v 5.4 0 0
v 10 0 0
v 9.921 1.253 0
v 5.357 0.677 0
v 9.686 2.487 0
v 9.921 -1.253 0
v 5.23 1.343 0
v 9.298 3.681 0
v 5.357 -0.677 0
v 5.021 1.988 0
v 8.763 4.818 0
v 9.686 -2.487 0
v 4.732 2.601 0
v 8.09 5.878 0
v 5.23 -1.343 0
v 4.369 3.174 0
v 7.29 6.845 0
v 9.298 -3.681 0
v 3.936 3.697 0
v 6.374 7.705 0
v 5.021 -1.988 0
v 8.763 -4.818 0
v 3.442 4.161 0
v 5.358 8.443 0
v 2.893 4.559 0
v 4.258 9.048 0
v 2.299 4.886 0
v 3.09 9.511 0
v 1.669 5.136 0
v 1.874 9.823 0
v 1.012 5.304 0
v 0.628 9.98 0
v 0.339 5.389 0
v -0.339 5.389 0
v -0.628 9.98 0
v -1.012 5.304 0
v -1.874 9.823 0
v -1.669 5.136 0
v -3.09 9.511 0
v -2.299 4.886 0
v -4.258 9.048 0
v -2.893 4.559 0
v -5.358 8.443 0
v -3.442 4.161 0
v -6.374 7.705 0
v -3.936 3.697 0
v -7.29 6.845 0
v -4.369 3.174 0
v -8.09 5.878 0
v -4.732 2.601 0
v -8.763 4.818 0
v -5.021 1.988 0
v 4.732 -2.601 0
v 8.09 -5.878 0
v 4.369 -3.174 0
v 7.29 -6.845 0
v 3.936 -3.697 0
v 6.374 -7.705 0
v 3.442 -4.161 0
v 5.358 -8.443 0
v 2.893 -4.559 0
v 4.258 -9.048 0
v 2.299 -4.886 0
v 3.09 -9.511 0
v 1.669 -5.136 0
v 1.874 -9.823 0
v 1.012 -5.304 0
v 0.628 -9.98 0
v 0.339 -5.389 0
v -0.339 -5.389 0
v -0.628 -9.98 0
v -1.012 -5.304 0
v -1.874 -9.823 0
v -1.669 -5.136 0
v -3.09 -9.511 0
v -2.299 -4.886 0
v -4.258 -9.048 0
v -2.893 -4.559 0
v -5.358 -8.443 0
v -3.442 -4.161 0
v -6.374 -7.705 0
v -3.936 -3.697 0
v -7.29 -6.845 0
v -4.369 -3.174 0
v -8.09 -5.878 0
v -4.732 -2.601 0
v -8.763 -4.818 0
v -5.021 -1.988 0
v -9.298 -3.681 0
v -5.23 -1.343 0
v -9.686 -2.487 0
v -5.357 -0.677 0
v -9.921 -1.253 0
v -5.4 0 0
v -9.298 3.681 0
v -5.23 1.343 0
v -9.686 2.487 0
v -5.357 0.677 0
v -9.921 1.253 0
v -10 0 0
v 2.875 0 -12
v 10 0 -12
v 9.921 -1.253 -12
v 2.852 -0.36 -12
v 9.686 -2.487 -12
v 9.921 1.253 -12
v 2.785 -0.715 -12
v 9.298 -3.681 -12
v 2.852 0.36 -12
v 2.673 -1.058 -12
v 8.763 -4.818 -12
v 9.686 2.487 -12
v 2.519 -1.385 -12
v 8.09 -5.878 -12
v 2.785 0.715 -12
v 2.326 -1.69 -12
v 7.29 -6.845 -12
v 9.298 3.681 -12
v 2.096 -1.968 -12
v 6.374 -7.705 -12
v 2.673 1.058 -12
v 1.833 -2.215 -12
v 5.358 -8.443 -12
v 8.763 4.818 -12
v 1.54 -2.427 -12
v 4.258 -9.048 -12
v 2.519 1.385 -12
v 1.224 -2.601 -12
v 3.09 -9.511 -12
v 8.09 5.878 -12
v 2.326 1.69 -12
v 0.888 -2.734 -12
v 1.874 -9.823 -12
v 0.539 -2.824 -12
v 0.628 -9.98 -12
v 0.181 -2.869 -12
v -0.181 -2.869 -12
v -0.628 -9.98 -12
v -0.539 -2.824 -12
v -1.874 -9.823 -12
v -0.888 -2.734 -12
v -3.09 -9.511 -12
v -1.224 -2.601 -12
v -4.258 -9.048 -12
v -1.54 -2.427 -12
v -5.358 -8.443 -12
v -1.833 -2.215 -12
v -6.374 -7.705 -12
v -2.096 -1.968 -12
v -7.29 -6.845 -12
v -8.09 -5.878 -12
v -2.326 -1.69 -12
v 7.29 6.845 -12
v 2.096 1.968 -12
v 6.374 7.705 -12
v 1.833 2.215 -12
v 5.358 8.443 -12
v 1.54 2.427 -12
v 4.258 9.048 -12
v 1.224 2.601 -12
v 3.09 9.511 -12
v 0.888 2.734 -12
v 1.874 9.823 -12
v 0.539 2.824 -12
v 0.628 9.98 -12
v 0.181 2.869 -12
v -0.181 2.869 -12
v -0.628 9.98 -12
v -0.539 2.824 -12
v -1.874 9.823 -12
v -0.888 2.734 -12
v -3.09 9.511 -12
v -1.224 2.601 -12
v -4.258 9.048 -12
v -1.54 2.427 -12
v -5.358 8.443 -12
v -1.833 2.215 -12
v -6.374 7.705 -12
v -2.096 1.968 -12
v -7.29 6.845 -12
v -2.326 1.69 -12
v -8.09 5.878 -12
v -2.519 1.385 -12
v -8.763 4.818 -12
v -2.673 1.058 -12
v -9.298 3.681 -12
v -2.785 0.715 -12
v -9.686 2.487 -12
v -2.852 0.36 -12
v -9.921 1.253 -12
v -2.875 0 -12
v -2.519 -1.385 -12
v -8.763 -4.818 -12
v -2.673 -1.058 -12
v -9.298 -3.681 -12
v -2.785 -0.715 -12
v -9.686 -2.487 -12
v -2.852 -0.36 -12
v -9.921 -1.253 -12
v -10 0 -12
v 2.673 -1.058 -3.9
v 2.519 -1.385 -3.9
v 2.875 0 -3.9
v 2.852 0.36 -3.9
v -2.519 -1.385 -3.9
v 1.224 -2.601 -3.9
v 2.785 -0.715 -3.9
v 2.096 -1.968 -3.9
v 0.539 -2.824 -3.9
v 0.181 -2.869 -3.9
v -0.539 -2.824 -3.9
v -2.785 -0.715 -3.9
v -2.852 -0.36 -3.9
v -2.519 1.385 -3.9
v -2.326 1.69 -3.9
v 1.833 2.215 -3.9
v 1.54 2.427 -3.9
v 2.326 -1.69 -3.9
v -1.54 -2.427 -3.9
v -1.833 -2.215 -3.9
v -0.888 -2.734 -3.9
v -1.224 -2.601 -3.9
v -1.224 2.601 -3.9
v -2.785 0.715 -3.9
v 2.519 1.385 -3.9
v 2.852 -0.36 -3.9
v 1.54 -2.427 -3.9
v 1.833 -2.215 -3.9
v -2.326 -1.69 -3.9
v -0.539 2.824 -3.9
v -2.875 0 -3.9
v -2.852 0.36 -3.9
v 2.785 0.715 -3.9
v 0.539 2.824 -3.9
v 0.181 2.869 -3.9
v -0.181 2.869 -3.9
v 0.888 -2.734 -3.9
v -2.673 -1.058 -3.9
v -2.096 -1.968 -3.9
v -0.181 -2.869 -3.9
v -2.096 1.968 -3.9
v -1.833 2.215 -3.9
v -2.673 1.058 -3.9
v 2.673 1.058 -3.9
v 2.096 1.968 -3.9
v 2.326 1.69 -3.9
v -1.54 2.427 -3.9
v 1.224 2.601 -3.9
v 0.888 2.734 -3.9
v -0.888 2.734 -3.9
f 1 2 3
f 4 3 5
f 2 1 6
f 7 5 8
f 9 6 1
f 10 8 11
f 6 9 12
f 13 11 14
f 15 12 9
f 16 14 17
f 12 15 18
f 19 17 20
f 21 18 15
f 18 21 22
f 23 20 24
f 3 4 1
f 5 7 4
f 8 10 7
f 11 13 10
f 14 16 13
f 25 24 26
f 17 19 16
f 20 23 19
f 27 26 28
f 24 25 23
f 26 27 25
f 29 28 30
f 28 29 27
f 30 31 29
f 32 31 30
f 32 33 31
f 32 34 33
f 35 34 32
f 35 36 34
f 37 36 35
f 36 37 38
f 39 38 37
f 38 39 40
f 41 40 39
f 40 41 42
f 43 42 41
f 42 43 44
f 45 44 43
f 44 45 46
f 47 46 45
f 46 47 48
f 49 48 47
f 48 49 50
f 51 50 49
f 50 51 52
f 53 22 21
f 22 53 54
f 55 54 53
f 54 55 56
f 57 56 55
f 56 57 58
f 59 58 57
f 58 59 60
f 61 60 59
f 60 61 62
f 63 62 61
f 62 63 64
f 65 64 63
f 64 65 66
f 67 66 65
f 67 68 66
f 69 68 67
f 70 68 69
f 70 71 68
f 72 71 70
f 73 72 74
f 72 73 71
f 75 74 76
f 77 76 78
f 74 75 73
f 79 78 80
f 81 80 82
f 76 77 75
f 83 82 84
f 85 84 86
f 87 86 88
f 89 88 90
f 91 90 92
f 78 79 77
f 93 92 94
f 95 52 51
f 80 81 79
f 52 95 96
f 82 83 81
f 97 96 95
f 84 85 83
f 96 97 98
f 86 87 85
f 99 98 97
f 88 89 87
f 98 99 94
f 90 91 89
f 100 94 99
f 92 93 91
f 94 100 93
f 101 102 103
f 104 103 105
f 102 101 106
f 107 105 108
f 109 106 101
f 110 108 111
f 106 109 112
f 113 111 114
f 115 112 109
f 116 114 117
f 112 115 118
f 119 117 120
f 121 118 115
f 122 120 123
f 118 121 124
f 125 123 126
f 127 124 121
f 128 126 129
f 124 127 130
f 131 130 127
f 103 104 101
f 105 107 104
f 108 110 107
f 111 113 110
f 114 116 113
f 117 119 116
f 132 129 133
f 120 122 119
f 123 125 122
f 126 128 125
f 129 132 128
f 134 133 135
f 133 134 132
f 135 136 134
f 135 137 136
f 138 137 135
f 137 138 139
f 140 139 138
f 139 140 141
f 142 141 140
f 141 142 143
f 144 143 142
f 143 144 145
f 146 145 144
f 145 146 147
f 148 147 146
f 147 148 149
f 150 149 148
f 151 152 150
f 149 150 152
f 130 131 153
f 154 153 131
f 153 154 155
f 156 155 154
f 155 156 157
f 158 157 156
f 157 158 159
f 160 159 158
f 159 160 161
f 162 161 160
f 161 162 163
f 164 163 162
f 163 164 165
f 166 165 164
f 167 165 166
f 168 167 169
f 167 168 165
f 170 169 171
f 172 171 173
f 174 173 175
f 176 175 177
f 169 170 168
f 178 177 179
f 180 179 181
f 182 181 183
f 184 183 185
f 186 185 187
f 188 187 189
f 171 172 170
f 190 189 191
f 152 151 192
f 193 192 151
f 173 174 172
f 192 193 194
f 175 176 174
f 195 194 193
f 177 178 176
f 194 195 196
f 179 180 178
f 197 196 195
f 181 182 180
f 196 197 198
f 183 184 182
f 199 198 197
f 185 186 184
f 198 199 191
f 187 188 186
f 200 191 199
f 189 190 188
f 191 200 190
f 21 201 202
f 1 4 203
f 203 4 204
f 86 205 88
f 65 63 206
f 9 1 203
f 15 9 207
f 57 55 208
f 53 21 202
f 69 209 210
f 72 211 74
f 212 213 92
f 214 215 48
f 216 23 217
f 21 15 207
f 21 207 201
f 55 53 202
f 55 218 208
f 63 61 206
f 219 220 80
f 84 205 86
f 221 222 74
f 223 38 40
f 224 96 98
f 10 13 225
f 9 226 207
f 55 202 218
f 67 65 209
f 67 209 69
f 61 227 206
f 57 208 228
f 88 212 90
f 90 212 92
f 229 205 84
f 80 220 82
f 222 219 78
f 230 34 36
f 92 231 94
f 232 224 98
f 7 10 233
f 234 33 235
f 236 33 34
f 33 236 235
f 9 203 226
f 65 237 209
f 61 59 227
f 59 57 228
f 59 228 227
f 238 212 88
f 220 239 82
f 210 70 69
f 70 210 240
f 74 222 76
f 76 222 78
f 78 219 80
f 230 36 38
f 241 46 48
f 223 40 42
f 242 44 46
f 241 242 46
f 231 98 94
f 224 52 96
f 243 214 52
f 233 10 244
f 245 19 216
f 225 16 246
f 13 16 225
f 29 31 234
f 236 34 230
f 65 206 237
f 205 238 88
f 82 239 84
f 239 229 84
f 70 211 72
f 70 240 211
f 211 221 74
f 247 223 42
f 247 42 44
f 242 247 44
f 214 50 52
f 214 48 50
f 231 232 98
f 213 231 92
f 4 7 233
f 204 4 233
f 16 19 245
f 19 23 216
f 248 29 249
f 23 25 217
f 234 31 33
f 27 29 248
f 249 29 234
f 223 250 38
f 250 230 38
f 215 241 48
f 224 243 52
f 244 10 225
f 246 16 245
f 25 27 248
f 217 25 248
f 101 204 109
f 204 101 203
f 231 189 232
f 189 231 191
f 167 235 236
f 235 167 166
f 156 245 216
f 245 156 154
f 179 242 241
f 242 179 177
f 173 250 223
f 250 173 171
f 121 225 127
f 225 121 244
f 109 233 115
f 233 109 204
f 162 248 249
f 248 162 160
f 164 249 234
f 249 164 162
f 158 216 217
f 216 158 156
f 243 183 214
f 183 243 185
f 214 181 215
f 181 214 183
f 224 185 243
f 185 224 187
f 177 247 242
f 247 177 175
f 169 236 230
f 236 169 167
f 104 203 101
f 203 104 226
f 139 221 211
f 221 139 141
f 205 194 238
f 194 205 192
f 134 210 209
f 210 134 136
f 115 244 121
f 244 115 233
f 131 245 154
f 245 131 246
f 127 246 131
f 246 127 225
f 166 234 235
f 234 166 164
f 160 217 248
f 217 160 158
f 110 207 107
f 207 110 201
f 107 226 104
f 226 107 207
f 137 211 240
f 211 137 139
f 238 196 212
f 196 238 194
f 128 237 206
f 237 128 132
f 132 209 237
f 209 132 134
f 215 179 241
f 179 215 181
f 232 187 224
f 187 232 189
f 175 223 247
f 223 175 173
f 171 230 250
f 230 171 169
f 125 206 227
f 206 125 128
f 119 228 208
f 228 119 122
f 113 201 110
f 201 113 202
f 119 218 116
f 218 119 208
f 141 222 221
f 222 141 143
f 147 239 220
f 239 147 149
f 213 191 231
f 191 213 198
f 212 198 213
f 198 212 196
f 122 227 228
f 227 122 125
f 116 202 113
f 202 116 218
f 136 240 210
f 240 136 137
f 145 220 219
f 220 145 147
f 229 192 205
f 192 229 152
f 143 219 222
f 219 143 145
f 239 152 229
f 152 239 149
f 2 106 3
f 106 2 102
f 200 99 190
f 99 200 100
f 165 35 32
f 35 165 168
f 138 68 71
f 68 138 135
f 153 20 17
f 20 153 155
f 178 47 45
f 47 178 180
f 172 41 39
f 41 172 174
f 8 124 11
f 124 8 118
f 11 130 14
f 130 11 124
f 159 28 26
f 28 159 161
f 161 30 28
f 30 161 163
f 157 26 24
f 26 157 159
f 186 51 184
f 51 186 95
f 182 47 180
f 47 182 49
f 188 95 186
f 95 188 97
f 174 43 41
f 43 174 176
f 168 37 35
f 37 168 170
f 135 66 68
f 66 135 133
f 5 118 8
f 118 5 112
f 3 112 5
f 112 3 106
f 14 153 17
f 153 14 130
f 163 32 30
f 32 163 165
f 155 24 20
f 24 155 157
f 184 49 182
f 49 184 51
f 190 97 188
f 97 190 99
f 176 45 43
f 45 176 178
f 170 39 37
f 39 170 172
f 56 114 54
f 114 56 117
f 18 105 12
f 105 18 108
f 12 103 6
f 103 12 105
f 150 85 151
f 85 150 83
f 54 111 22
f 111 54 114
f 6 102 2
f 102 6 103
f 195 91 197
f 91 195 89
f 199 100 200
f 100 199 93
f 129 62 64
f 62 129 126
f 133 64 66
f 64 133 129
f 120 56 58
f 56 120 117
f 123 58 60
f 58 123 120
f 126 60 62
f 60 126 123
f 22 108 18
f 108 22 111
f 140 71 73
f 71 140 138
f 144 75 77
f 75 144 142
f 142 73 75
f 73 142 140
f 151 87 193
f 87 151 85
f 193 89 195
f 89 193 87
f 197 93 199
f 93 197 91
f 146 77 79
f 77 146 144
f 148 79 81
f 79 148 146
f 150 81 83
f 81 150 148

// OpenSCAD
$fn = 50;


difference() {
	union() {
		translate(v = [0, 0, -12.0000000000]) {
			cylinder(h = 12, r = 10.0000000000);
		}
		cylinder(h = 0, r = 19.0000000000);
	}
	union() {
		translate(v = [0, 0, 0]) {
			rotate(a = [0, 0, 0]) {
				difference() {
					union() {
						#translate(v = [0, 0, -12.0000000000]) {
							cylinder(h = 12, r = 2.6000000000);
						}
						#translate(v = [0, 0, -3.9000000000]) {
							cylinder(h = 3.9000000000, r1 = 2.8750000000, r2 = 5.4000000000);
						}
						#translate(v = [0, 0, -12.0000000000]) {
							cylinder(h = 12, r = 2.8750000000);
						}
						#translate(v = [0, 0, -12.0000000000]) {
							cylinder(h = 12, r = 2.6000000000);
						}
					}
					union();
				}
			}
		}
	}
}
